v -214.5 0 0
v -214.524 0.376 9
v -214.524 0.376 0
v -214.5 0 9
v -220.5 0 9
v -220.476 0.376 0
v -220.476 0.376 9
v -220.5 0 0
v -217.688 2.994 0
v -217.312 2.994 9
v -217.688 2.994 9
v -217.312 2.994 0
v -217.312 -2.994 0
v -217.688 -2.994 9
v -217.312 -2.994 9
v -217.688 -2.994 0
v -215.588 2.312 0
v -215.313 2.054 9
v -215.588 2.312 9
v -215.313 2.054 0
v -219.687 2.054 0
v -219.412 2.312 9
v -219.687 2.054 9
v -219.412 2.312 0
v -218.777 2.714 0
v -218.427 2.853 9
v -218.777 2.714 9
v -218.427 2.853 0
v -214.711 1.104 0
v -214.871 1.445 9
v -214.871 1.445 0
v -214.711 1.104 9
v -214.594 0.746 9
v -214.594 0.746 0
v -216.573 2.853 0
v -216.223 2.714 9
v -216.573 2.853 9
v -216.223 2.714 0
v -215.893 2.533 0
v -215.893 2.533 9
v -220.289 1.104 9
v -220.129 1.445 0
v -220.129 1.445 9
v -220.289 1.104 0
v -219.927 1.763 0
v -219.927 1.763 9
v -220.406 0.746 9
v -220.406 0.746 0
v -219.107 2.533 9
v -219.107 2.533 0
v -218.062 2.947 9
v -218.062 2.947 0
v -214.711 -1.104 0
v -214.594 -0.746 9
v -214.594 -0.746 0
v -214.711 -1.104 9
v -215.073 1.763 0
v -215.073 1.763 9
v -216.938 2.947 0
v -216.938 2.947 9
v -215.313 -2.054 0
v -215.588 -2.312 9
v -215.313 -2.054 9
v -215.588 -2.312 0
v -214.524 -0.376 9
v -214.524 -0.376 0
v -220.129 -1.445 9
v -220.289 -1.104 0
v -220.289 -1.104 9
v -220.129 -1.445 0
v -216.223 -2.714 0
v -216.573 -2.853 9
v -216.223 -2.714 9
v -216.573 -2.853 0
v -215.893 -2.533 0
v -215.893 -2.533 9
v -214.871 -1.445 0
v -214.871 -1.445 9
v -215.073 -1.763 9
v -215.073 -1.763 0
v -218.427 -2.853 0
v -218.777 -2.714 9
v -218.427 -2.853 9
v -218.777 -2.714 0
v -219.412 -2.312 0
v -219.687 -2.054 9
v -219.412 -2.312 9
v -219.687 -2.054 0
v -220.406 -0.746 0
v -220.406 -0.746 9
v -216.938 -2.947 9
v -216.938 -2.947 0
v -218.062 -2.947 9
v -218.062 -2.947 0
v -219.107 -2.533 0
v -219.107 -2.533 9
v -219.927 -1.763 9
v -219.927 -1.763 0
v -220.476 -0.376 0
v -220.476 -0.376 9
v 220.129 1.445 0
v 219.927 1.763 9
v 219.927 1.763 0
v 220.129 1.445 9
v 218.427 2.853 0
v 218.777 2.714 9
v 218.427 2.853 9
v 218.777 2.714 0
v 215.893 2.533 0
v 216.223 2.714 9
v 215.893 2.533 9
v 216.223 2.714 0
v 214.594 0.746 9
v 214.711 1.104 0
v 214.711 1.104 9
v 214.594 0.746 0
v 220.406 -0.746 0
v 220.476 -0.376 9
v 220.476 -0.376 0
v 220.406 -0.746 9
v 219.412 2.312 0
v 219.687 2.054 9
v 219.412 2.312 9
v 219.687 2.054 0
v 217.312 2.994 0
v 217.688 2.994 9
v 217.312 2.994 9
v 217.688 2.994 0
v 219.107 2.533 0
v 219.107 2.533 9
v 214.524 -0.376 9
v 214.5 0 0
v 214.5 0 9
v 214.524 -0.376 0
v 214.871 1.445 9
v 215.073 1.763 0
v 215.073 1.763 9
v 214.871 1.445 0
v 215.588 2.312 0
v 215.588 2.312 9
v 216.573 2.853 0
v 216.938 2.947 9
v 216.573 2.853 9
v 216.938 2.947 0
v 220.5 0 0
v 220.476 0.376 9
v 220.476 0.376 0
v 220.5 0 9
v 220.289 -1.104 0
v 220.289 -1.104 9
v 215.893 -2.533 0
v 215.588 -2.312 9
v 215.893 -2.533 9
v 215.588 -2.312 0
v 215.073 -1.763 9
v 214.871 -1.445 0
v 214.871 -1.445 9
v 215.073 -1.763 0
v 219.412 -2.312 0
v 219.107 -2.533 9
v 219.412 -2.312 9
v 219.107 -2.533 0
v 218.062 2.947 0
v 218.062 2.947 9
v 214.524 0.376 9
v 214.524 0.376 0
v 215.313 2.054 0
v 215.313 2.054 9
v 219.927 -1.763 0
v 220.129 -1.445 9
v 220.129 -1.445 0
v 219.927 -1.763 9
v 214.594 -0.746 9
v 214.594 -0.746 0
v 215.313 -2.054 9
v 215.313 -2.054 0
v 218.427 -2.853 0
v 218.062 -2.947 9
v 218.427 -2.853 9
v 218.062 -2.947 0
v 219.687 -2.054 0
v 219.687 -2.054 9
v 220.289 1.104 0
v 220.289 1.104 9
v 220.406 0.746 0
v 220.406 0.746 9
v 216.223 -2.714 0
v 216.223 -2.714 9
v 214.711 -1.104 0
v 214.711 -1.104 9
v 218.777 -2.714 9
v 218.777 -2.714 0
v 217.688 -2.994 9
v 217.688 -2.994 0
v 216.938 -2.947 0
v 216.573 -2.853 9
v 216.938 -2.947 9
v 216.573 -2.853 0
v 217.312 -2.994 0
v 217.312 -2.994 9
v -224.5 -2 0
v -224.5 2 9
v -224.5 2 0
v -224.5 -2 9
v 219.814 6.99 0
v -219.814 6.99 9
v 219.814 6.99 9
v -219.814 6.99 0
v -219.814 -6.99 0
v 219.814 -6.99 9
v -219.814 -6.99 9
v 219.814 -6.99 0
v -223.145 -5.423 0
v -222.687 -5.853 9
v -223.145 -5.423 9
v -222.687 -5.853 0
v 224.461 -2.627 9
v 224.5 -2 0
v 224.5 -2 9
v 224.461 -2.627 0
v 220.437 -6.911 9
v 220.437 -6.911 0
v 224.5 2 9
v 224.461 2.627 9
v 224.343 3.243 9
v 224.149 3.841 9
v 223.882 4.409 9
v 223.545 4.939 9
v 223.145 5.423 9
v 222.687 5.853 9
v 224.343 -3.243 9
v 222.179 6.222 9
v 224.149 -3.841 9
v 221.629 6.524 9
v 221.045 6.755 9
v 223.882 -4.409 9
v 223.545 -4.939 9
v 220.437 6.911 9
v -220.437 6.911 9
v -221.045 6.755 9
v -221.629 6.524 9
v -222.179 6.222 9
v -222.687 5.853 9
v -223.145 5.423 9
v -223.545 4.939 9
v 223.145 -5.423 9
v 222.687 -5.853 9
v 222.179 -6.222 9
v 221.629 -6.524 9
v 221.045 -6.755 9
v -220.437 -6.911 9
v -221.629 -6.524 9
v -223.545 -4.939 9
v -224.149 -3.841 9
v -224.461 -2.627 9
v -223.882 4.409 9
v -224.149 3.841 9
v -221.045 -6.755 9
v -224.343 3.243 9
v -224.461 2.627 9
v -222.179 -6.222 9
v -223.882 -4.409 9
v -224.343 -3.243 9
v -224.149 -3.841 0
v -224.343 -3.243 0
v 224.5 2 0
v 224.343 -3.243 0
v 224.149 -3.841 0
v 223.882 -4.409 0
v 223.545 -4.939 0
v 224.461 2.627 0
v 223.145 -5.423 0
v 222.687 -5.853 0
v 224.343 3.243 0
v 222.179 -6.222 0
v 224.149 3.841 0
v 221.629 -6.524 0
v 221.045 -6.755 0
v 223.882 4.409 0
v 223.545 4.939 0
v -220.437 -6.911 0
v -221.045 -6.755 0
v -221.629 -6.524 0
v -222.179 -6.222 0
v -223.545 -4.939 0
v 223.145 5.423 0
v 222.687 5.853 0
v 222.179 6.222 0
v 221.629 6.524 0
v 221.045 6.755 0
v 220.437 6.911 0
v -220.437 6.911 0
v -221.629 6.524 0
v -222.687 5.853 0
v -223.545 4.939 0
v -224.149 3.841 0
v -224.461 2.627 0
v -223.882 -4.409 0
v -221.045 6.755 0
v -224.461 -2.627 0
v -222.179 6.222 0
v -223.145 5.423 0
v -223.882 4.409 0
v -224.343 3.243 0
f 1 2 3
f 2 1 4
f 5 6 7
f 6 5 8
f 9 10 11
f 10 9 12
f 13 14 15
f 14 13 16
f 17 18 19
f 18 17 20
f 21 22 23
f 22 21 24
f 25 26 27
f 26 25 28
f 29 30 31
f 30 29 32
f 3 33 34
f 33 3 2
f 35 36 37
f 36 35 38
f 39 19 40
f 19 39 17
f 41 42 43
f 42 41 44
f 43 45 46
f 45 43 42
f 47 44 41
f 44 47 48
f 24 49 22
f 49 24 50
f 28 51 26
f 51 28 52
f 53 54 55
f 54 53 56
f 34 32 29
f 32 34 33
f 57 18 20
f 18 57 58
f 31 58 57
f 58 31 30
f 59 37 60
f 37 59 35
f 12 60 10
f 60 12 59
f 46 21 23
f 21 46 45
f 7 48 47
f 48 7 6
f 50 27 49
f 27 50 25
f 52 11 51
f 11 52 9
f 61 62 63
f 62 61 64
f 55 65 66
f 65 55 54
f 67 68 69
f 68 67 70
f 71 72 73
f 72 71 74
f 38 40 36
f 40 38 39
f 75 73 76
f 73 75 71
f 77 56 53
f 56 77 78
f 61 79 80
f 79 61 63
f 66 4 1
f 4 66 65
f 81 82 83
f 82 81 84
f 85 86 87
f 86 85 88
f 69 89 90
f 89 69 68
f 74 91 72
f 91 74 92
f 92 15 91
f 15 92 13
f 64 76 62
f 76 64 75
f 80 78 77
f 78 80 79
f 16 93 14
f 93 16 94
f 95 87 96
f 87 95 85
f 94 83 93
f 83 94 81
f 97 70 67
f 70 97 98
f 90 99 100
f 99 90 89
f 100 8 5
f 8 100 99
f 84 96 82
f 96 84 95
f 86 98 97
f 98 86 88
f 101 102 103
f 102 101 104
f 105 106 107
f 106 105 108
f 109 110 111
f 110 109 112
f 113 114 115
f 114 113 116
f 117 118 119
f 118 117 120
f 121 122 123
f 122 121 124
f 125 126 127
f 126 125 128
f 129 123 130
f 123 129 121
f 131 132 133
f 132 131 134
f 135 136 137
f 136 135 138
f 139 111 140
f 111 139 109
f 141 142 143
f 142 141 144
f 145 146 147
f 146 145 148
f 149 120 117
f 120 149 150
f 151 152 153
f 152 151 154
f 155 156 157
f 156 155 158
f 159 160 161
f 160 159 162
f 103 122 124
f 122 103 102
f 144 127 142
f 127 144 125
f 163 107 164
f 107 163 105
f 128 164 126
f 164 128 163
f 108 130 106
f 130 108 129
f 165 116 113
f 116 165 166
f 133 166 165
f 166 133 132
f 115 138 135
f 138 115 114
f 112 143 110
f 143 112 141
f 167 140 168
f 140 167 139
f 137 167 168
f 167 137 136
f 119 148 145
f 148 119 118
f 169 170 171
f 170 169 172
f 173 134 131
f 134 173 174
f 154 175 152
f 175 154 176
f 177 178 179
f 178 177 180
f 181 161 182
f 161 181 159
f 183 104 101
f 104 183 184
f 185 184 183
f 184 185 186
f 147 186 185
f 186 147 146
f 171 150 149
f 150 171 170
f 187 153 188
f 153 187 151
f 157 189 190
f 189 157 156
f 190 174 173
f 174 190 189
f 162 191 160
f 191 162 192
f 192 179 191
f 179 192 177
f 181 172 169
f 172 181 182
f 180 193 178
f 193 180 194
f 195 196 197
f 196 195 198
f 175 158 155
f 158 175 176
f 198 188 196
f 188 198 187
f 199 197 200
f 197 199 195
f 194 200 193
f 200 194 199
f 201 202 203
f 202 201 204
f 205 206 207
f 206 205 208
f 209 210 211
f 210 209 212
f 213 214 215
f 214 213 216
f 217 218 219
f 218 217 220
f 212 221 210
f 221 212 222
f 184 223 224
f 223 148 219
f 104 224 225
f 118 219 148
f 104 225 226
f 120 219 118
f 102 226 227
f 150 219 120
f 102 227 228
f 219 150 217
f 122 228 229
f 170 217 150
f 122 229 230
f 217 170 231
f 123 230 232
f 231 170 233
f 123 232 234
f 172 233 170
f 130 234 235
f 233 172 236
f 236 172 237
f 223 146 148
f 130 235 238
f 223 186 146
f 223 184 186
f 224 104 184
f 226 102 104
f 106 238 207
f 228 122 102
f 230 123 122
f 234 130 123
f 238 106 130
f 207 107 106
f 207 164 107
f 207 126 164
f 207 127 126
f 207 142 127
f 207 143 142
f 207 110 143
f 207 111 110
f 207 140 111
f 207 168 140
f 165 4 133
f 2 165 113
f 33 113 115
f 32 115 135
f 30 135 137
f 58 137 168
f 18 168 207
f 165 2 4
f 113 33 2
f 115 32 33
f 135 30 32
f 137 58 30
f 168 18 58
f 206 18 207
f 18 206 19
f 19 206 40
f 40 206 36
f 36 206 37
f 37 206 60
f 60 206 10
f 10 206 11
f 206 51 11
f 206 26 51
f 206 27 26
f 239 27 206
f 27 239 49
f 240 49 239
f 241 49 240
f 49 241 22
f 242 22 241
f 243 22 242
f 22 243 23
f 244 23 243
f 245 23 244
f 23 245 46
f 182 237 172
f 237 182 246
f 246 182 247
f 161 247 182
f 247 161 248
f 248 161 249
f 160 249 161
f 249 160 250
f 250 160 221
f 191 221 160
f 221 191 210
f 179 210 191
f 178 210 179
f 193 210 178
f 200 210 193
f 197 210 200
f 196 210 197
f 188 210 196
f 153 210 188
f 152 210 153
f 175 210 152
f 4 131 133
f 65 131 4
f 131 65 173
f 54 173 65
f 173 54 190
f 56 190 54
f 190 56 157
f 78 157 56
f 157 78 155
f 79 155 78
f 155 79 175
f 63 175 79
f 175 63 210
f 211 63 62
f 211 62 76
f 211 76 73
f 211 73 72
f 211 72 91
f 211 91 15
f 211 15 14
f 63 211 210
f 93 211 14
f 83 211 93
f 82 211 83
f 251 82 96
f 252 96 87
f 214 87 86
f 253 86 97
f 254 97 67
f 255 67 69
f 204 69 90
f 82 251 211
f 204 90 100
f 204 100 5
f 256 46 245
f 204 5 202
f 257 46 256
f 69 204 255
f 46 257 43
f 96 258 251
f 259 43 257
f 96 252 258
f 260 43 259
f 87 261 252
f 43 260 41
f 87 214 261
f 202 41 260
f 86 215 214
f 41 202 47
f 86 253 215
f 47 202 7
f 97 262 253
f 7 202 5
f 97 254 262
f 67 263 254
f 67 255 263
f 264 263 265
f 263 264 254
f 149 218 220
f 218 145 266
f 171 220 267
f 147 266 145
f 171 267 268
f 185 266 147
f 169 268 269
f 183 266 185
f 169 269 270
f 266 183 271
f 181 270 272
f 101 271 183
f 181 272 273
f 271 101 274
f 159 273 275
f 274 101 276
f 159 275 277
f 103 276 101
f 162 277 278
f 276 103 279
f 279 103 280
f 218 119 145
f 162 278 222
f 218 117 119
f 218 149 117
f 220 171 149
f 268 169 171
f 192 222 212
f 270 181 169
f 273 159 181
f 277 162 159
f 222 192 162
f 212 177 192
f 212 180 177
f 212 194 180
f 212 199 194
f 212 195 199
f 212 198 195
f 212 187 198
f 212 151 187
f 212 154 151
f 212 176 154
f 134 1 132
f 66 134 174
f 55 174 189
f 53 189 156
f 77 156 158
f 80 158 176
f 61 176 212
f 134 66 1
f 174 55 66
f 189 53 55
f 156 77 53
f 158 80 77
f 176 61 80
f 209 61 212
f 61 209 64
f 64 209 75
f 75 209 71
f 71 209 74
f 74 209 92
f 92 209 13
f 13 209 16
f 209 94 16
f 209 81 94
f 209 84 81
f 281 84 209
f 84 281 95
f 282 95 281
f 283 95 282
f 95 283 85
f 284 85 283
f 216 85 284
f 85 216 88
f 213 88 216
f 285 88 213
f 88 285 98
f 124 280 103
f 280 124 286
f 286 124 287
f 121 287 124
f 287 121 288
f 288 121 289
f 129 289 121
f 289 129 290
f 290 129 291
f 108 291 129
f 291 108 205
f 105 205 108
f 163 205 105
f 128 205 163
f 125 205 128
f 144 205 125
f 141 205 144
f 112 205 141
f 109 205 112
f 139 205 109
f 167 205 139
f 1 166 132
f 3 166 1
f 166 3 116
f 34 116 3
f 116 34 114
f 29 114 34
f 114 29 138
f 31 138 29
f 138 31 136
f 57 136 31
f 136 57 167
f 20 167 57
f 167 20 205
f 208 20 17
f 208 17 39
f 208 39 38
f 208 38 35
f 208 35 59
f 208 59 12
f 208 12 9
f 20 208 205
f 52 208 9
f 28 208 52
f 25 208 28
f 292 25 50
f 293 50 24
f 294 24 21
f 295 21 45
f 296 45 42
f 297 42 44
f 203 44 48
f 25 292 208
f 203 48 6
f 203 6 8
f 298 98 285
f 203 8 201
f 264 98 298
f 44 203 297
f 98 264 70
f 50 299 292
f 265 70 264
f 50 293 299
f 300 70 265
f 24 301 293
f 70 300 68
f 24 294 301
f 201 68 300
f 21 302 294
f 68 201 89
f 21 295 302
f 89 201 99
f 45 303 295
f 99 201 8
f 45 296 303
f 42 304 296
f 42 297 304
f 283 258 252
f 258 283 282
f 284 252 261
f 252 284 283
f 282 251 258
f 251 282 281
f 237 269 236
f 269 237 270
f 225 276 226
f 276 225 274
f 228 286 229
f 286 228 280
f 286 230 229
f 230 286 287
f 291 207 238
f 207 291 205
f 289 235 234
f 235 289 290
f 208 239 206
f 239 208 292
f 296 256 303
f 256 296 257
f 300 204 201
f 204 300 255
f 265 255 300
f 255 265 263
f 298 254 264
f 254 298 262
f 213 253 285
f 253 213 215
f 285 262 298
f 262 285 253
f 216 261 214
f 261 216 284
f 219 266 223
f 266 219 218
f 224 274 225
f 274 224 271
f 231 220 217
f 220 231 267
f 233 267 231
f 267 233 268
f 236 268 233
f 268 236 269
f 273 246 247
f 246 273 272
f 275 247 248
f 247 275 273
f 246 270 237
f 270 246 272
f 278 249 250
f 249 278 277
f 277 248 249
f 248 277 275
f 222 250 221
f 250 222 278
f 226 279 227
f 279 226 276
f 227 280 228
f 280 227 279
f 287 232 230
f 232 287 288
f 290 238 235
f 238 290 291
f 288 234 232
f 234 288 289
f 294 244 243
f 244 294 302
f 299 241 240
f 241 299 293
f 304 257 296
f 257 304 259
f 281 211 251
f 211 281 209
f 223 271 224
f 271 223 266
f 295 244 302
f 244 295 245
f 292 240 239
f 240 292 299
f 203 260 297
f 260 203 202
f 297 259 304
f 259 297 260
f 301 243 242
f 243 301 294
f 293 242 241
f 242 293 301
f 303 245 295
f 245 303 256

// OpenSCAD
$fn = 50;


difference() {
	union() {
		hull() {
			translate(v = [-219.5000000000, 2.0000000000, 0]) {
				cylinder(h = 9, r = 5);
			}
			translate(v = [219.5000000000, 2.0000000000, 0]) {
				cylinder(h = 9, r = 5);
			}
			translate(v = [-219.5000000000, -2.0000000000, 0]) {
				cylinder(h = 9, r = 5);
			}
			translate(v = [219.5000000000, -2.0000000000, 0]) {
				cylinder(h = 9, r = 5);
			}
		}
	}
	union() {
		translate(v = [-217.5000000000, 0.0000000000, -100.0000000000]) {
			cylinder(h = 200, r = 3.0000000000);
		}
		translate(v = [-217.5000000000, 0.0000000000, -100.0000000000]) {
			cylinder(h = 200, r = 3.0000000000);
		}
		translate(v = [217.5000000000, 0.0000000000, -100.0000000000]) {
			cylinder(h = 200, r = 3.0000000000);
		}
		translate(v = [217.5000000000, 0.0000000000, -100.0000000000]) {
			cylinder(h = 200, r = 3.0000000000);
		}
	}
}
